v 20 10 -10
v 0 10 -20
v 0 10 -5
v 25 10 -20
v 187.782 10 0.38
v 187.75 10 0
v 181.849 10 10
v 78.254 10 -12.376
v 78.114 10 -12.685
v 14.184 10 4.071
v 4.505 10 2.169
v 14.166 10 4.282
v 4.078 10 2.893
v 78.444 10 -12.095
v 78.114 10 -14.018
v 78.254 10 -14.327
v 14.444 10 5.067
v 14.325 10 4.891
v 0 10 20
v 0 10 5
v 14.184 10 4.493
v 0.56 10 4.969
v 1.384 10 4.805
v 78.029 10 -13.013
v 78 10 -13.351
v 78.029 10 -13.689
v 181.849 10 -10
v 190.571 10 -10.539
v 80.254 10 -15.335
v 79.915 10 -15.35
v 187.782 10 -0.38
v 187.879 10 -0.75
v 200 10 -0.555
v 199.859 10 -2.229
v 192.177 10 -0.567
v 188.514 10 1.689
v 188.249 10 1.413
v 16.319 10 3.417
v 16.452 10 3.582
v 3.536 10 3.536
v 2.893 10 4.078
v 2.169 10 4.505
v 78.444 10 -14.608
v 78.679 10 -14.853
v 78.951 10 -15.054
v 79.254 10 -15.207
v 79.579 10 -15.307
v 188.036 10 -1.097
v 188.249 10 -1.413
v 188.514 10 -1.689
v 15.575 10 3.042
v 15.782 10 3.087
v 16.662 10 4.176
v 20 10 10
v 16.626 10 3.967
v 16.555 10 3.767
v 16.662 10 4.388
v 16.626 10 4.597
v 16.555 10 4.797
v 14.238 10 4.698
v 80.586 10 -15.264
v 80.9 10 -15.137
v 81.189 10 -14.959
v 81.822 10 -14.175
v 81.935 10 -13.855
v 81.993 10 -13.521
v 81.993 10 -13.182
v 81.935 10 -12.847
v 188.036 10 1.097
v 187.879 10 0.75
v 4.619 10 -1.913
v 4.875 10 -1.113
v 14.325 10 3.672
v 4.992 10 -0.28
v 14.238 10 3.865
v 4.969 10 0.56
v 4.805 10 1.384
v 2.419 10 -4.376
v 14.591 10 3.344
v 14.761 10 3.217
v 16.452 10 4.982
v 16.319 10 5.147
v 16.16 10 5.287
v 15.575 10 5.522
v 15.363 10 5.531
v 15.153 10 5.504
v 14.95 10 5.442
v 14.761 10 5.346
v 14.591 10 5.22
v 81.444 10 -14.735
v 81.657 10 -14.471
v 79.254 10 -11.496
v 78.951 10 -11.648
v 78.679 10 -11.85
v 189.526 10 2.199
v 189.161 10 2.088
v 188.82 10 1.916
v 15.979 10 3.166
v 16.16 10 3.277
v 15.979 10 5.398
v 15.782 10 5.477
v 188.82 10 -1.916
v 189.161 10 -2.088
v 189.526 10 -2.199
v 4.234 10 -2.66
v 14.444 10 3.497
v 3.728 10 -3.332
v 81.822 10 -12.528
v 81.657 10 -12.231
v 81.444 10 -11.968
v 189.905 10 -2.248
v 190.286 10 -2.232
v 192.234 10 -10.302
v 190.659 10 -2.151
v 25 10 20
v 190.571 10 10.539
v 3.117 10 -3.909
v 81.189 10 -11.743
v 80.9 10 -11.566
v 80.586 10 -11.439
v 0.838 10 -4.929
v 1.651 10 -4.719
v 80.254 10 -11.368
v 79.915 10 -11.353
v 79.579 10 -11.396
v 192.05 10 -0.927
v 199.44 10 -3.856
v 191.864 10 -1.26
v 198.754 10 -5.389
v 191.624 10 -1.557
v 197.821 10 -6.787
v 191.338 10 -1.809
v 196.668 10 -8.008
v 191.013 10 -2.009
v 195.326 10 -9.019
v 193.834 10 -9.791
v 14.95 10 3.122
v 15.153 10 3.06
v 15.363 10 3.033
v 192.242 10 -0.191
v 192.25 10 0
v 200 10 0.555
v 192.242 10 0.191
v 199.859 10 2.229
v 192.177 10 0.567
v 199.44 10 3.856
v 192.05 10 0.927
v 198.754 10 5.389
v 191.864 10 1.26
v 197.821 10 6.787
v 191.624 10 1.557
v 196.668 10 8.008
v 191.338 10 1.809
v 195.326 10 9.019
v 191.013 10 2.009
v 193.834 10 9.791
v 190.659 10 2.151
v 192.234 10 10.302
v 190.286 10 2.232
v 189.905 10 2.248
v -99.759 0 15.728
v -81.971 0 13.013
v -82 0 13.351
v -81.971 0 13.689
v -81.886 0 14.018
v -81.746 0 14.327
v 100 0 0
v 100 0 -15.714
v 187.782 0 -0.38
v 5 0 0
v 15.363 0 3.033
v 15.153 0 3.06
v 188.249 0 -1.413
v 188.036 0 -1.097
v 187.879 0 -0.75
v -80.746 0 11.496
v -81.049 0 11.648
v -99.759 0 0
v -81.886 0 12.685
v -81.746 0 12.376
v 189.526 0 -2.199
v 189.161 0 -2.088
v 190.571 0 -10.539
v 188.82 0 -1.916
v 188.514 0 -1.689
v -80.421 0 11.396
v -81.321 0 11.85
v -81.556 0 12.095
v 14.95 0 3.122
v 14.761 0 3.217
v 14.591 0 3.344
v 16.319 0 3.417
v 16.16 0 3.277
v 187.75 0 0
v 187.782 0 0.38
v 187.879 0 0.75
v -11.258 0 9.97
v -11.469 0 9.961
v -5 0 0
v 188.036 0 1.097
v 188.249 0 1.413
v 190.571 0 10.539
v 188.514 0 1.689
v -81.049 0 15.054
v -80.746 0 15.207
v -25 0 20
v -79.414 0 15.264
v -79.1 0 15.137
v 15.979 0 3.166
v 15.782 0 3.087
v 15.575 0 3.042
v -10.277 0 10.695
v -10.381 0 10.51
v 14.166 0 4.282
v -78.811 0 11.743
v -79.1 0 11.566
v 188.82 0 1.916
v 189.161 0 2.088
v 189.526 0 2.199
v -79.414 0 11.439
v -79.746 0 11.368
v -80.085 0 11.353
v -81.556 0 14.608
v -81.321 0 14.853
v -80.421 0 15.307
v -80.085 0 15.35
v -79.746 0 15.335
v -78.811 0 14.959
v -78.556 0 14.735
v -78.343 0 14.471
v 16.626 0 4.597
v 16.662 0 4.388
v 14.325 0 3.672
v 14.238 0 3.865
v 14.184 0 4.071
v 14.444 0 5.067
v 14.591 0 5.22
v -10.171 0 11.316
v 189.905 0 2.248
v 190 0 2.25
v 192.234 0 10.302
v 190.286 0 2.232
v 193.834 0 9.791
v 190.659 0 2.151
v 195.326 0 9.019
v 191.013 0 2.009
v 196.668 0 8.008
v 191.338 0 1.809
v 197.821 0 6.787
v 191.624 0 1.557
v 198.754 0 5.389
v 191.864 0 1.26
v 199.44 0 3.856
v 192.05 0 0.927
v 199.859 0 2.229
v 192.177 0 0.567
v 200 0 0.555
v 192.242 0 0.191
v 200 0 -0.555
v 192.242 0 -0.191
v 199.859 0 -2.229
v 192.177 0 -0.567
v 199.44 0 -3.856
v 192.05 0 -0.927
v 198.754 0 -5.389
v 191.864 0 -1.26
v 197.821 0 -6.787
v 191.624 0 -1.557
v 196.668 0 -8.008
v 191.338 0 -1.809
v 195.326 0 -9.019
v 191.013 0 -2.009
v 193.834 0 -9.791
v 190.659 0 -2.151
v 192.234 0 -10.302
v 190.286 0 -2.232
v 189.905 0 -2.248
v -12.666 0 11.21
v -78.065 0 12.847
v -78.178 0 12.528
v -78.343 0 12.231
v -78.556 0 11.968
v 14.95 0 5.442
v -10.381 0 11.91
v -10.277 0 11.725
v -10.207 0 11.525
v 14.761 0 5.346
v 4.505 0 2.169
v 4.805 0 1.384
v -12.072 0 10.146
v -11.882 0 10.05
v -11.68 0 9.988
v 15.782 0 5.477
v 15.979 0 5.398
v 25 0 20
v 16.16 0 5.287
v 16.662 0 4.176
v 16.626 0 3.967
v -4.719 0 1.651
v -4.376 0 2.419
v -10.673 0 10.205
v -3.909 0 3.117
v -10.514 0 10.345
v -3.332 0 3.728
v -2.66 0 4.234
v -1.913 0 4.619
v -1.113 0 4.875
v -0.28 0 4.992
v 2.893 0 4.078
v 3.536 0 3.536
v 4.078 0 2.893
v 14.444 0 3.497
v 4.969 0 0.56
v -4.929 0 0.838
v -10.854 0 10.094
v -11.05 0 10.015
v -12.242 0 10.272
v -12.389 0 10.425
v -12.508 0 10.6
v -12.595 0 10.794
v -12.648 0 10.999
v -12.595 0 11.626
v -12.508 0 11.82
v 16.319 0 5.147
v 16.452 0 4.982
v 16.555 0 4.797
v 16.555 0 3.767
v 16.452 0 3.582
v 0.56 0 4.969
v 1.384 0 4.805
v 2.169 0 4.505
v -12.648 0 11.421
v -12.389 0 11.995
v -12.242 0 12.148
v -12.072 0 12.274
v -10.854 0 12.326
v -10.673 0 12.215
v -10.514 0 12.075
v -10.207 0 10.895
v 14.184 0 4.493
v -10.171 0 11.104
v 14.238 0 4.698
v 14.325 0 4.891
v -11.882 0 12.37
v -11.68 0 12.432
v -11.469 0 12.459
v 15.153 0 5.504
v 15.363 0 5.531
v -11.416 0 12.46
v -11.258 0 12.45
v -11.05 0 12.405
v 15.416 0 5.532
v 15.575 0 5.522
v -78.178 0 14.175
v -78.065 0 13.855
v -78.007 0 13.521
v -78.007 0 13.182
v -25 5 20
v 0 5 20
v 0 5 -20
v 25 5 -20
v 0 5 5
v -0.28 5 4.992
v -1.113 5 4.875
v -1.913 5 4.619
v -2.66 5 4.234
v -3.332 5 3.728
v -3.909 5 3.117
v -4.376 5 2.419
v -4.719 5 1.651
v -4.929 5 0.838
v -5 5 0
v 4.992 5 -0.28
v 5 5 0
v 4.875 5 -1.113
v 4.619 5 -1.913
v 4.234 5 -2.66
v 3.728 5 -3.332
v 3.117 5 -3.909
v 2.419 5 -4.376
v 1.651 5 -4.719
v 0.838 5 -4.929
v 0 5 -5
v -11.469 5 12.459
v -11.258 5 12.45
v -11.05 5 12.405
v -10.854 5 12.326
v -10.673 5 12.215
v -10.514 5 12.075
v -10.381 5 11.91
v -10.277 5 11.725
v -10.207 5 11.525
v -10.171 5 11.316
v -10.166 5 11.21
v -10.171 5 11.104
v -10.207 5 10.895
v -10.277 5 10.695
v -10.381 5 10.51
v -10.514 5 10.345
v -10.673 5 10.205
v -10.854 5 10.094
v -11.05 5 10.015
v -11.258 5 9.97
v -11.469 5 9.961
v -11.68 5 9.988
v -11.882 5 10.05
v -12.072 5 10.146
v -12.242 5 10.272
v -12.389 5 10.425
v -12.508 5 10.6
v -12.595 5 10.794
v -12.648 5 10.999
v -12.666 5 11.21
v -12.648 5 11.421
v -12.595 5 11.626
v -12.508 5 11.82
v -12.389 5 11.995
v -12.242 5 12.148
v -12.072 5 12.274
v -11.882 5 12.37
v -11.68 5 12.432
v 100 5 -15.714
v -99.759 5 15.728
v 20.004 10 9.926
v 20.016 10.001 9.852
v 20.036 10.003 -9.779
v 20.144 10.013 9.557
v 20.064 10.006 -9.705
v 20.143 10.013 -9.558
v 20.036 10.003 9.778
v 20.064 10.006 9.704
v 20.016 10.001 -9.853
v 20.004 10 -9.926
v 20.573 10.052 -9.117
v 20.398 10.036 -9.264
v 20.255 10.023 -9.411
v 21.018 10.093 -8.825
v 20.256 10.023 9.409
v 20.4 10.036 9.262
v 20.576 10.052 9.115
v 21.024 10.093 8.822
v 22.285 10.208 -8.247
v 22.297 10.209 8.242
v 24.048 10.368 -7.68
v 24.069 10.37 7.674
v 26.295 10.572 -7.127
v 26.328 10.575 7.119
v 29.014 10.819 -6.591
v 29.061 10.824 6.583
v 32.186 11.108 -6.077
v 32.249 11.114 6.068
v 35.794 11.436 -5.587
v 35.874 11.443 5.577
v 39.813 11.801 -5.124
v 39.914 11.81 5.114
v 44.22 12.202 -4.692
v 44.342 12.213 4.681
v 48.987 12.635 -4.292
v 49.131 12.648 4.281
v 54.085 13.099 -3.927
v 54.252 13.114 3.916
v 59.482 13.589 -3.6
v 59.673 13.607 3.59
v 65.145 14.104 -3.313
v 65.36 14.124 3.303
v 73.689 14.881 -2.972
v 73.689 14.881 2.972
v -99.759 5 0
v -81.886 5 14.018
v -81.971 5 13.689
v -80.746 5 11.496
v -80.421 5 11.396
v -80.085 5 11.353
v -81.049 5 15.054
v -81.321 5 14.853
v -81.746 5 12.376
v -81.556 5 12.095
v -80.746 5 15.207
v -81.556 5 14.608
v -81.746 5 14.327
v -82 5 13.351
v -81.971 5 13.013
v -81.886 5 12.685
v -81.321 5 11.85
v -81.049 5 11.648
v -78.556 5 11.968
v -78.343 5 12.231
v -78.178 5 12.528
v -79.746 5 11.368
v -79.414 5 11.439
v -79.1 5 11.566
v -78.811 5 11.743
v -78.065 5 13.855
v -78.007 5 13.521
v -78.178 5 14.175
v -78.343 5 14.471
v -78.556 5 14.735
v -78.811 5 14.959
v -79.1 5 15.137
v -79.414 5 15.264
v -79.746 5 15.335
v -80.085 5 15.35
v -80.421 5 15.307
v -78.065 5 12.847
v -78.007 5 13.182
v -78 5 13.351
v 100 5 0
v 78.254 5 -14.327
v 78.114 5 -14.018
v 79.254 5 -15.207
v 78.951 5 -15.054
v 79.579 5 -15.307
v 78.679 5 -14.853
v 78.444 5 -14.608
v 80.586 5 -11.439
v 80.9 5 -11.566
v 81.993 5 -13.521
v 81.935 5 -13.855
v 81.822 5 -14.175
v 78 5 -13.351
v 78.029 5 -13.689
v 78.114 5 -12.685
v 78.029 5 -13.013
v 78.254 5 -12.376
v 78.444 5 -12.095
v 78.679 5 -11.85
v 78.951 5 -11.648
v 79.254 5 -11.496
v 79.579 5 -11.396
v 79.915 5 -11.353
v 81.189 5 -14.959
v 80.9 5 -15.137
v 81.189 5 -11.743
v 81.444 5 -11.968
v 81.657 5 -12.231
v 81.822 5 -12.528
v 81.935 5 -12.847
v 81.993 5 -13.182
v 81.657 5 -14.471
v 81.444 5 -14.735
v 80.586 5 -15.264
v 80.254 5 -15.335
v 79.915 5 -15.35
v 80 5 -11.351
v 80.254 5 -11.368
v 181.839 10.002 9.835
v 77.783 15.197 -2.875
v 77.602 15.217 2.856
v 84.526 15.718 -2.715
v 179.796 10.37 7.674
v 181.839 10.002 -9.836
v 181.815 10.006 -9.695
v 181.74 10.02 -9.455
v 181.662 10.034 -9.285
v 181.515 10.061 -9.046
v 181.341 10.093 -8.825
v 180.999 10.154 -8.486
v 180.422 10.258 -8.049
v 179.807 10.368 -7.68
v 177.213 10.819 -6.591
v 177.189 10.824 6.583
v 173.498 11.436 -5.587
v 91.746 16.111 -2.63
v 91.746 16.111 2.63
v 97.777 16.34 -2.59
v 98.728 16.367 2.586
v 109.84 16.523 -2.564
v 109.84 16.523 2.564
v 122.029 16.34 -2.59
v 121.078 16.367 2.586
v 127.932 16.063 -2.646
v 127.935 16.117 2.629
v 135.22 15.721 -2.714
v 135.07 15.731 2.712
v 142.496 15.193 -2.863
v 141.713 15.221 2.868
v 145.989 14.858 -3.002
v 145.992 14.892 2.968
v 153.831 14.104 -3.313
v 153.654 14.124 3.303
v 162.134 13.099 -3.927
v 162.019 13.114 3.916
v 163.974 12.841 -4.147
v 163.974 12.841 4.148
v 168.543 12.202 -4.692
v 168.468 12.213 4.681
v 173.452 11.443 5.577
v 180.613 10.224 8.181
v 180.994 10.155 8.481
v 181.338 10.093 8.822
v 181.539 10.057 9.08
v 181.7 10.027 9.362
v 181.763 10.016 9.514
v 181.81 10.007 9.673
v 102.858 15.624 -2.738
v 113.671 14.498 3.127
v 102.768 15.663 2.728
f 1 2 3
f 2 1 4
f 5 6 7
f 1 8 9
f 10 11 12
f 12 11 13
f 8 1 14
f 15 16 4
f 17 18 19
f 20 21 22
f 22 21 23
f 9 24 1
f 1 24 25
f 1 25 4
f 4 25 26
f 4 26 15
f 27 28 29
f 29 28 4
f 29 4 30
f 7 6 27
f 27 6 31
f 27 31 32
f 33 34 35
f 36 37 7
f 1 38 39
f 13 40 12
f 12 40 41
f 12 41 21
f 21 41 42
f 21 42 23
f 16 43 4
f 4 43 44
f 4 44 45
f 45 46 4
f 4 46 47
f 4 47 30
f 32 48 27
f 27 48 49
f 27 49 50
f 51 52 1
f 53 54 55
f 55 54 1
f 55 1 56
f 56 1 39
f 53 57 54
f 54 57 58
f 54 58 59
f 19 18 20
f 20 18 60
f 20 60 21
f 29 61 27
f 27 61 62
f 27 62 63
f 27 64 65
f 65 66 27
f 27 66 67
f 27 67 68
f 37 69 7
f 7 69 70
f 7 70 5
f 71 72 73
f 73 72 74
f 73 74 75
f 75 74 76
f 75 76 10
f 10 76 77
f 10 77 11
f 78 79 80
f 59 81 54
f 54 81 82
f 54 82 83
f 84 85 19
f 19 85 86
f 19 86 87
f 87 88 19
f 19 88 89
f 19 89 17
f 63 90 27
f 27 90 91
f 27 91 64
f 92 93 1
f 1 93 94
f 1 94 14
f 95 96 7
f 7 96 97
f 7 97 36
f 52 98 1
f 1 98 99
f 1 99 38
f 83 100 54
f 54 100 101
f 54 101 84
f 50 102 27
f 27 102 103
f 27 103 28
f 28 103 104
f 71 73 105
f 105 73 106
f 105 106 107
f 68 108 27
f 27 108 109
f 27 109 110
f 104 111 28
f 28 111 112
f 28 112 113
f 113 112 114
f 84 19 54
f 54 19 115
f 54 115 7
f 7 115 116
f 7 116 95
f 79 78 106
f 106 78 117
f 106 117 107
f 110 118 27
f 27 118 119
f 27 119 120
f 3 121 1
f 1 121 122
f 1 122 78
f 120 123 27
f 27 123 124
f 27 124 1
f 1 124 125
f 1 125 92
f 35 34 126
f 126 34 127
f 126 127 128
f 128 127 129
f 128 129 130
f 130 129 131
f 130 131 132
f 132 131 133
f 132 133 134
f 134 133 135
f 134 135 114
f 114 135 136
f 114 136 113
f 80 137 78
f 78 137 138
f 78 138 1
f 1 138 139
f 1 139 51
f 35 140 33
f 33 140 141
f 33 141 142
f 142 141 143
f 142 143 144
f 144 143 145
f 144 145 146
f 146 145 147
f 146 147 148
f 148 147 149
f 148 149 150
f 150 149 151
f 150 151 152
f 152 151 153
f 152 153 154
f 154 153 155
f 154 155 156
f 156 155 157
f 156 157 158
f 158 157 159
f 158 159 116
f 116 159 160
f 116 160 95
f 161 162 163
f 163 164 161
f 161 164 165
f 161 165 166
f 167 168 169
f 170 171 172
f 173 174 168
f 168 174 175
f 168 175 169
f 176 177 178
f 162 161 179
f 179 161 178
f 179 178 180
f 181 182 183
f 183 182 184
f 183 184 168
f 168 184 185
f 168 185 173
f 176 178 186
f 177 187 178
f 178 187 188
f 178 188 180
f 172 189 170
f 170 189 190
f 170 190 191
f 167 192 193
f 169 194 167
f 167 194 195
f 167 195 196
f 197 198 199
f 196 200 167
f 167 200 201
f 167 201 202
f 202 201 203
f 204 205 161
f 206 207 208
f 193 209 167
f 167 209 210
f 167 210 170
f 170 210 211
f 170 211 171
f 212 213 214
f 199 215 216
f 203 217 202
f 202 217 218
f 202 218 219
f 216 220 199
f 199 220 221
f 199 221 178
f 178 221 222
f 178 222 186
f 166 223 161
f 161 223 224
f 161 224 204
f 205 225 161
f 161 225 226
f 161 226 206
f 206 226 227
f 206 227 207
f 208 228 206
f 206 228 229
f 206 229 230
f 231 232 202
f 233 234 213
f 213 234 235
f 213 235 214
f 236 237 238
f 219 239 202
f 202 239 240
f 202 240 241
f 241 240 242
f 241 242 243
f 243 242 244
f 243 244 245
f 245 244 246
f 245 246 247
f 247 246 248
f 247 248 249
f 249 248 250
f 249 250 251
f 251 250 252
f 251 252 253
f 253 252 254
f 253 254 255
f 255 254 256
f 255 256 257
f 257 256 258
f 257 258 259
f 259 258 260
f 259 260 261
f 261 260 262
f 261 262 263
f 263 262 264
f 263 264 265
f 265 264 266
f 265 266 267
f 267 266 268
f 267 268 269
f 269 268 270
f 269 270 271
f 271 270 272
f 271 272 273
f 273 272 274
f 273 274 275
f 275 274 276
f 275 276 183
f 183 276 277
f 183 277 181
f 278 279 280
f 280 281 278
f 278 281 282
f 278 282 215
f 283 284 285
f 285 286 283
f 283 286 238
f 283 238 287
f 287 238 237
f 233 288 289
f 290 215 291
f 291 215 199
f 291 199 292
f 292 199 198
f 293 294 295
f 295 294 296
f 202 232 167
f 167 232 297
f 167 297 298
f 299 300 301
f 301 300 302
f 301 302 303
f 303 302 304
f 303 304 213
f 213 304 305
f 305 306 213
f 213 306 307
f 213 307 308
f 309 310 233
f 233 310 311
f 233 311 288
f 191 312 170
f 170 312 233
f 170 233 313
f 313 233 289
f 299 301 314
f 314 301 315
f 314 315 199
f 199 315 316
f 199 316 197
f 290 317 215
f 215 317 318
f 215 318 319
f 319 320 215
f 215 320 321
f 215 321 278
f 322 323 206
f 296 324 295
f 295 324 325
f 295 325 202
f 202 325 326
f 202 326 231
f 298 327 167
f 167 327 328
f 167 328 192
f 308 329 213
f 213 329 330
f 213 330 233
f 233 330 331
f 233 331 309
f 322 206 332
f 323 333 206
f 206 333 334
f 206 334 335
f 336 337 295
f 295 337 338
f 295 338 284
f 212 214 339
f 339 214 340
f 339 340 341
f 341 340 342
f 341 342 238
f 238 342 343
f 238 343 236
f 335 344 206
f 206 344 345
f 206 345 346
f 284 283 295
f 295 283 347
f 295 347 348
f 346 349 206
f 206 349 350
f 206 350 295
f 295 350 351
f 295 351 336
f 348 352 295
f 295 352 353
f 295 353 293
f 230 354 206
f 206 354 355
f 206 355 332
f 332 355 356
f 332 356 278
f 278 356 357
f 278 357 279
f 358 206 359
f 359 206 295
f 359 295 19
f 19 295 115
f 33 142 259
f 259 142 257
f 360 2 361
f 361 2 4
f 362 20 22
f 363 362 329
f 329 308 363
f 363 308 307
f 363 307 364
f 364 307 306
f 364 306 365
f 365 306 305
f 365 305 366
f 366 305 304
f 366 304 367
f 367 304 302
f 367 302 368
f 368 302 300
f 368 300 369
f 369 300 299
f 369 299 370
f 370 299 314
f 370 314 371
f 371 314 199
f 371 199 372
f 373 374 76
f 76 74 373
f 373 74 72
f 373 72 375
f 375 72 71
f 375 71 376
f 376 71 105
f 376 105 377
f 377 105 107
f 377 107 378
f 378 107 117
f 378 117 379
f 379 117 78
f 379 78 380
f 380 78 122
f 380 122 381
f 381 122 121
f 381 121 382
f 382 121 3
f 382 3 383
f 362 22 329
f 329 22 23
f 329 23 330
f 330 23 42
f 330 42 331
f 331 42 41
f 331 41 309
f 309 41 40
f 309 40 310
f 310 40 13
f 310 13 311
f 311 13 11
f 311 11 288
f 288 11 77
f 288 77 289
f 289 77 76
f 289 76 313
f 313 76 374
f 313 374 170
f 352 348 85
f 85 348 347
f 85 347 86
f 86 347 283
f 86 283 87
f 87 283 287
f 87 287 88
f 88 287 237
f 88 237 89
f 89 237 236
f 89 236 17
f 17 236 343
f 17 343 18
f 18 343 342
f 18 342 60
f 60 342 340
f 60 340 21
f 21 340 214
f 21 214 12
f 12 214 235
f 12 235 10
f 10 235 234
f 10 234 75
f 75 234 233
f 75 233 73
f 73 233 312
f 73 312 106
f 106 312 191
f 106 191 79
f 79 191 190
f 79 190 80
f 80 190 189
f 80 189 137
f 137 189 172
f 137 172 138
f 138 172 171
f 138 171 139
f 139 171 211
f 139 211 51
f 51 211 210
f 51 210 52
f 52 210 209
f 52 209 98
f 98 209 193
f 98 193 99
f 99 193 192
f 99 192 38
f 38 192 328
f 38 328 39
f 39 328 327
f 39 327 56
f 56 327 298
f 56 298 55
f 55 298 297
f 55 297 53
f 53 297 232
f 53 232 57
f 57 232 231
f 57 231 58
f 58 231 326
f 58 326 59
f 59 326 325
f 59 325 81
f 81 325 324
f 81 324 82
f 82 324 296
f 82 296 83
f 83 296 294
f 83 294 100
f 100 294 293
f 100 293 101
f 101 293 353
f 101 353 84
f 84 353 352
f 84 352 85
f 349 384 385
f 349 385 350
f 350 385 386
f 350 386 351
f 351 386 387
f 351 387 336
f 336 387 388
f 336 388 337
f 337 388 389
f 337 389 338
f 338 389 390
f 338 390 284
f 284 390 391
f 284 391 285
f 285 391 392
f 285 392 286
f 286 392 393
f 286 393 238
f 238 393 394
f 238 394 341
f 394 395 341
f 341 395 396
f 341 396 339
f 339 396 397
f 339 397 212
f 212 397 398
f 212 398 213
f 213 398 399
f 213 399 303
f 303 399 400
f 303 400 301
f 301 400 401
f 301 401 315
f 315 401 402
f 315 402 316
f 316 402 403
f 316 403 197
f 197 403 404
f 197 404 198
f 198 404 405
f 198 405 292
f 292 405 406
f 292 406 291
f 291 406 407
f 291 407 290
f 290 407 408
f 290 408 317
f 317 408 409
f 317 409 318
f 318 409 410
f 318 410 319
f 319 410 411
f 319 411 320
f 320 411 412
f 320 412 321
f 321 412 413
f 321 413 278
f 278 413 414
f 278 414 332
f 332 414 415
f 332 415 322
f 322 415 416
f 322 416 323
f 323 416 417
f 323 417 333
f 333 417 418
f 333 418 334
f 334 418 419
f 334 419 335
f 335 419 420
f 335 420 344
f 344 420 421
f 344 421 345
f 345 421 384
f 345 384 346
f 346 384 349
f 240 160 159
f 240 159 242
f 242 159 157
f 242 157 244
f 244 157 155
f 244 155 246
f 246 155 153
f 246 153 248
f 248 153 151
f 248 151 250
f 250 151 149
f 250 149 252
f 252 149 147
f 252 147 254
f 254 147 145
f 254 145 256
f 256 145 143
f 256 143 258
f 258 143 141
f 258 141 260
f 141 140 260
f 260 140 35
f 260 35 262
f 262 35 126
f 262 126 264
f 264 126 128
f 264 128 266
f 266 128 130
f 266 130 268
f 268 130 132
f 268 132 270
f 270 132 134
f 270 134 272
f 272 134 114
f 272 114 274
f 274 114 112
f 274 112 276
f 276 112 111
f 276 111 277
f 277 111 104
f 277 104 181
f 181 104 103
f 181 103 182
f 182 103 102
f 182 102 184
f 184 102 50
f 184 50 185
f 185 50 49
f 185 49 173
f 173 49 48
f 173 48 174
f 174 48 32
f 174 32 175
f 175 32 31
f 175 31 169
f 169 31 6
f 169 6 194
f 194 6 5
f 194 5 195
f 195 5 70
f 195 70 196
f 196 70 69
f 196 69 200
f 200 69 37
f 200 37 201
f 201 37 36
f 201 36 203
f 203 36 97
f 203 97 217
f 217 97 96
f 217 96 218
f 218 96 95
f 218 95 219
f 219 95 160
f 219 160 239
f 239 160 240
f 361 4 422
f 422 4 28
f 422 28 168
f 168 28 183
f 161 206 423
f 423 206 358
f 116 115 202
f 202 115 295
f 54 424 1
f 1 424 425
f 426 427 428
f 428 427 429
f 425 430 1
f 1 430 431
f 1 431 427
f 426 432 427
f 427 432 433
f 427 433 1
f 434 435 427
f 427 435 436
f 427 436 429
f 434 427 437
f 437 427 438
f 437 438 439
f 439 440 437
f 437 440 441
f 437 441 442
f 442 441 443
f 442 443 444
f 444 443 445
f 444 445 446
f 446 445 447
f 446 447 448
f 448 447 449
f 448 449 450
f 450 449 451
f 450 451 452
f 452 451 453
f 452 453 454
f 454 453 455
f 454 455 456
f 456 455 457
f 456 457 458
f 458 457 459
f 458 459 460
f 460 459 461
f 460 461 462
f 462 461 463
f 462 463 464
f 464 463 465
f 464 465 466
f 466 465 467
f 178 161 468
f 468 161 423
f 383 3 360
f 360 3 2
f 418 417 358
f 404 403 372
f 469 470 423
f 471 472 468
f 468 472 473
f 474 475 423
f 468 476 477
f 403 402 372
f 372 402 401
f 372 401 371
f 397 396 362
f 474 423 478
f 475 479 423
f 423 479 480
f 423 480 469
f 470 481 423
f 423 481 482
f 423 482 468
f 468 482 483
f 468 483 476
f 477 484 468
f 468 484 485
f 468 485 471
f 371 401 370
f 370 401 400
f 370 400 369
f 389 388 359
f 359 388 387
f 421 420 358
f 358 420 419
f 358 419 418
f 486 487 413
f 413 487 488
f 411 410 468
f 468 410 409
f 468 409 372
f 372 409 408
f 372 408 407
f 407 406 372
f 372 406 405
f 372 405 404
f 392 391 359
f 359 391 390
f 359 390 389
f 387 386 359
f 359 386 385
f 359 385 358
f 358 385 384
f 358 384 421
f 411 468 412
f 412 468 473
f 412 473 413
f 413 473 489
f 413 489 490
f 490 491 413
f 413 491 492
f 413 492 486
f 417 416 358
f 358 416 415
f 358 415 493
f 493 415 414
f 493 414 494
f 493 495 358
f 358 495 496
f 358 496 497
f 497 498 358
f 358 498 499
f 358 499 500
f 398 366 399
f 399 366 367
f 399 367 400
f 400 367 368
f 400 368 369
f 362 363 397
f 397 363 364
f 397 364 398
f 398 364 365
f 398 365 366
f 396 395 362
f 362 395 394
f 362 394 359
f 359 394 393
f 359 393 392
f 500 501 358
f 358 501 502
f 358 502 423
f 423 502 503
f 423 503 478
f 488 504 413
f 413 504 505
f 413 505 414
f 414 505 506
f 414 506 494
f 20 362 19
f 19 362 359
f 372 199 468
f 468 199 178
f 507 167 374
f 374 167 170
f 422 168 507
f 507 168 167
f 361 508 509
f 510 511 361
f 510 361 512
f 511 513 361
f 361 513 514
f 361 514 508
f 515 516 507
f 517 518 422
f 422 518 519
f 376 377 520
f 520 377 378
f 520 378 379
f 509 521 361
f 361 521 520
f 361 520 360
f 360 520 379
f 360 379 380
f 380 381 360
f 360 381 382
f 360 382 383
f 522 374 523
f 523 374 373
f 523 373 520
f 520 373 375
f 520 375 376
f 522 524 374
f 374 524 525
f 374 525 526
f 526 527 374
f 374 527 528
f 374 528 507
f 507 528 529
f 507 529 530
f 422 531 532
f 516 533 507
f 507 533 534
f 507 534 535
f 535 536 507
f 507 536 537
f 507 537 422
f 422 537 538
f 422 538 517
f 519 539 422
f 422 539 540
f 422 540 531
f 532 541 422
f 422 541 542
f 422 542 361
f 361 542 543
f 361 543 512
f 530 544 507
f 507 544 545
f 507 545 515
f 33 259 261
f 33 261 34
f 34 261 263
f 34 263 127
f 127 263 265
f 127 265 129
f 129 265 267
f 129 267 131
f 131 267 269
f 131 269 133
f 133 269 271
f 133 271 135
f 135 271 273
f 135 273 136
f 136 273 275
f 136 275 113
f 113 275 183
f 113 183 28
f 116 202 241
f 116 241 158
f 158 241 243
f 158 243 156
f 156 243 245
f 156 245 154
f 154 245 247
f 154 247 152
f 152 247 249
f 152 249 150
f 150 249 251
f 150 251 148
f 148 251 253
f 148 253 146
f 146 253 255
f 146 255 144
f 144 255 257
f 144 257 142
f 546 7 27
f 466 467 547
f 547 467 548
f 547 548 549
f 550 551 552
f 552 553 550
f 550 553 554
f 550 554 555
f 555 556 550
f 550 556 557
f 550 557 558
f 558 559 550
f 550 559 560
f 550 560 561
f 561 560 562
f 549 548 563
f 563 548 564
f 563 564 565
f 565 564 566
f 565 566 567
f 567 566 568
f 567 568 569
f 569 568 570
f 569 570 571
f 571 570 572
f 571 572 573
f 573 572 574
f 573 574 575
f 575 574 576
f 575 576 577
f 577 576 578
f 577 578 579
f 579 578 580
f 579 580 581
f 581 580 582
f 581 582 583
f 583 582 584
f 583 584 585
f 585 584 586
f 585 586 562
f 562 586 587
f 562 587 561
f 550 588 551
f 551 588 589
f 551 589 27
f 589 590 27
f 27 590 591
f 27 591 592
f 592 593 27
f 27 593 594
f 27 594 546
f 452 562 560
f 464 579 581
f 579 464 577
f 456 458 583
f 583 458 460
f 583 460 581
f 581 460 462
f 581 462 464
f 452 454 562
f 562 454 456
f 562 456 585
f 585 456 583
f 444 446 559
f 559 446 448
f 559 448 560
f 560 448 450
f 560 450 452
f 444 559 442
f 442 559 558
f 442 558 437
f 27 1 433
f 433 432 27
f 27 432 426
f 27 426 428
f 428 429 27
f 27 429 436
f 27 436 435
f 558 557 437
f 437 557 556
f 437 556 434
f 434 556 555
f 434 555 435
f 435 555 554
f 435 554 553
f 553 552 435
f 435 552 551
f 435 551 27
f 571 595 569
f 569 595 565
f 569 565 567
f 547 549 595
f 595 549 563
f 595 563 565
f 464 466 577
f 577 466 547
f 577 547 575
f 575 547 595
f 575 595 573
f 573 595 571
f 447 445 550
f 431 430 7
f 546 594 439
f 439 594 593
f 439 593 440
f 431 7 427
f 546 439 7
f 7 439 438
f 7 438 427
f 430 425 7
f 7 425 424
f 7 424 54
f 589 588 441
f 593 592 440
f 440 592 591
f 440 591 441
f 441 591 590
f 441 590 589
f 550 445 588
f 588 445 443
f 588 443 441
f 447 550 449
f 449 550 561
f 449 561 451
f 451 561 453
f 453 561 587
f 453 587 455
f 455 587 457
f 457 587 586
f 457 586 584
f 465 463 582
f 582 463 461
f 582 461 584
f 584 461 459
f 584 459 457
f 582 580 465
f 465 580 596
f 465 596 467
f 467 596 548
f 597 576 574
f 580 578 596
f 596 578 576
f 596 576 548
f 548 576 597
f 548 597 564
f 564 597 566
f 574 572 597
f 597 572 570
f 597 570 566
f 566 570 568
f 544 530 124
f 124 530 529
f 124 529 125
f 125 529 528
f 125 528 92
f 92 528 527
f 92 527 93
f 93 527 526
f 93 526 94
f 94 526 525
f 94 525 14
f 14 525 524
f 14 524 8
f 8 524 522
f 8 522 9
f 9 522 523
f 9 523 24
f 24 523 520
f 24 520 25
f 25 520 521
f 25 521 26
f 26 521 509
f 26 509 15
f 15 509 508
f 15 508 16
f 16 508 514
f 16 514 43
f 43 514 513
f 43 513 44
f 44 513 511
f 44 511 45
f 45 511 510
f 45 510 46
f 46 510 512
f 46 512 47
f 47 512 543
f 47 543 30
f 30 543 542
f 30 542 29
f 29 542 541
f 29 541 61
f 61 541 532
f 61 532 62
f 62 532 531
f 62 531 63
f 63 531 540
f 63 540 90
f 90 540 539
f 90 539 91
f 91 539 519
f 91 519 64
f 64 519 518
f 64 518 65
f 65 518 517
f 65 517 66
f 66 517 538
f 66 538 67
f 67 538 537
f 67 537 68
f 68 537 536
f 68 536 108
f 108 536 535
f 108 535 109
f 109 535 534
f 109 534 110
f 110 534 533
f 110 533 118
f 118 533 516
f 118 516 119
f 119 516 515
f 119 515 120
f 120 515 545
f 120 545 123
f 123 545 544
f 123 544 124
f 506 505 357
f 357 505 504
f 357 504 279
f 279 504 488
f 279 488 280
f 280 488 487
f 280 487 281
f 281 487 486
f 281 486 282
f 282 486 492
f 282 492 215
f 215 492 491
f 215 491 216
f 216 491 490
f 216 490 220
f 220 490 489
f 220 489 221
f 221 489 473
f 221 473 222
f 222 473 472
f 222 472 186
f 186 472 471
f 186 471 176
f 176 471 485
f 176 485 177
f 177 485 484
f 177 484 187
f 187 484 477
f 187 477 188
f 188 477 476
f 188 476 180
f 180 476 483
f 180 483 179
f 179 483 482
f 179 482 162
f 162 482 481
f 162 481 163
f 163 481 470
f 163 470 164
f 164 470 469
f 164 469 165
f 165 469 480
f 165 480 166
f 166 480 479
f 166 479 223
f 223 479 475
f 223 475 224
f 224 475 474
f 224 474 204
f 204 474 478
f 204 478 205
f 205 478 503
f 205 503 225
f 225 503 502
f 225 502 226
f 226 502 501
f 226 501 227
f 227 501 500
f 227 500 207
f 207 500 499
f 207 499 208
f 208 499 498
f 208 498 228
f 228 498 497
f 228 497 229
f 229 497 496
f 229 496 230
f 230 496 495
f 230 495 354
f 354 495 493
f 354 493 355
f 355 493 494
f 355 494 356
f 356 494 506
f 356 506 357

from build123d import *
from build123d.topology import SkipClean

# Parameters (mm, degrees)
BOSS_EXTRUDE1_DEPTH  = 20
SKETCH3_R            = 1.25
SKETCH3_R_2          = 5
SKETCH3_R_3          = 2.25
CUT_EXTRUDE1_DEPTH   = 40
CUT_EXTRUDE2_DEPTH   = 40
MIRROR2_COPY_1_DEPTH = 40
BOSS_EXTRUDE3_DEPTH  = 2.5
SKETCH6_W            = 103.671116399
SKETCH6_H            = 23.957467505
CUT_EXTRUDE3_DEPTH   = 25
SKETCH7_W            = 105.212539013
SKETCH7_H            = 19.765490072
CUT_EXTRUDE4_DEPTH   = 25
SKETCH8_W            = 102.846794358
SKETCH8_H            = 18.402184695
CUT_EXTRUDE5_DEPTH   = 50
SKETCH9_W            = 100
SKETCH9_H            = 9.37939479
CUT_EXTRUDE6_DEPTH   = 50
FILLET2_R            = 10
FILLET3_R            = 400
FILLET4_START        = -2.563828285
FILLET4_DEPTH        = 5.127667015
FILLET4_START_2      = -10.0000001
FILLET4_2_DEPTH      = 20.0000001
FILLET4_START_3      = 19.9999999
FILLET4_3_DEPTH      = 163.0000001
SKETCH10_R           = 2
CUT_EXTRUDE7_DEPTH   = 10


with BuildPart() as part:
    # Sketch2 → Boss-Extrude1 (new, symmetric)
    with BuildSketch(Plane.XY):
        Polygon((0, 0), (200, 0), (200, 10), (-200, 10), (-200, 0), align=None)
    extrude(amount=BOSS_EXTRUDE1_DEPTH, both=True)

    # Sketch3 → Cut-Extrude1 (cut)
    with BuildSketch(Plane(origin=(0, 10, 0), x_dir=(1, 0, 0), z_dir=(0, 1, 0))):
        with Locations(Location((-4, 15.491933385, 0), (0, 0, 180))):
            Circle(SKETCH3_R)
        with Locations(Location((15.416407865, -4.281865077, 0), (0, 0, 180))):
            Circle(SKETCH3_R)
        with Locations(Location((-11.416407865, -11.210068308, 0), (0, 0, 180))):
            Circle(SKETCH3_R)
        with Locations(Location((0, 0, 0), (0, 0, 180))):
            Circle(SKETCH3_R_2)
        with Locations(Location((-190, 0, 0), (0, 0, 180))):
            Circle(SKETCH3_R_3)
        with Locations(Location((190, 0, 0), (0, 0, 270))):
            Circle(SKETCH3_R_3)
    extrude(amount=-CUT_EXTRUDE1_DEPTH, mode=Mode.SUBTRACT)

    # Sketch4 → Cut-Extrude2 (cut)
    with BuildSketch(Plane(origin=(0, 10, 0), x_dir=(1, 0, 0), z_dir=(0, 1, 0))):
        Polygon((-205.682411406, 30.266574236), (-25, 30.266574236), (-25, 20), (-200, 10), (-205.682411406, 10), align=None)
    cut_extrude2 = extrude(amount=-CUT_EXTRUDE2_DEPTH, mode=Mode.SUBTRACT)

    # Mirror1: Cut-Extrude2 across plane
    add(cut_extrude2.mirror(Plane(origin=(0, 0, 0), x_dir=(0, 0, 1), z_dir=(1, 0, 0))), mode=Mode.SUBTRACT)

    # Mirror2: Cut-Extrude2 across plane
    add(cut_extrude2.mirror(Plane.XY), mode=Mode.SUBTRACT)

    # Mirror2 copy 1 sketch → Mirror2 copy 1 (cut)
    with BuildSketch(Plane(origin=(0, 10, 0), x_dir=(-1, 0, 0), z_dir=(0, 1, 0))):
        Polygon((-205.682411406, 30.266574236), (-25, 30.266574236), (-25, 20), (-200, 10), (-205.682411406, 10), align=None)
    extrude(amount=-MIRROR2_COPY_1_DEPTH, mode=Mode.SUBTRACT)

    # Sketch5 → Boss-Extrude3 (add, symmetric)
    with BuildSketch(Plane.XY):
        Polygon((-181.848966048, 10), (-20, 10), (-130, 20), align=None)
    boss_extrude3 = extrude(amount=BOSS_EXTRUDE3_DEPTH, both=True)

    # Mirror3: Boss-Extrude3 across plane
    add(boss_extrude3.mirror(Plane(origin=(0, 0, 0), x_dir=(0, 0, 1), z_dir=(1, 0, 0))))

    # Sketch6 → Cut-Extrude3 (cut, symmetric)
    with BuildSketch(Plane.XY):
        with Locations((-151.594267329, 11.978733753)):
            Rectangle(SKETCH6_W, SKETCH6_H)
    extrude(amount=CUT_EXTRUDE3_DEPTH, both=True, mode=Mode.SUBTRACT)

    # Sketch7 → Cut-Extrude4 (cut, symmetric)
    with BuildSketch(Plane.XY):
        with Locations((-52.606269507, 14.882745036)):
            Rectangle(SKETCH7_W, SKETCH7_H)
    extrude(amount=CUT_EXTRUDE4_DEPTH, both=True, mode=Mode.SUBTRACT)

    # Sketch8 → Cut-Extrude5 (cut)
    with BuildSketch(Plane.XY):
        with Locations((-51.423397179, -0.639817385)):
            Rectangle(SKETCH8_W, SKETCH8_H)
    extrude(amount=-CUT_EXTRUDE5_DEPTH, mode=Mode.SUBTRACT)

    # Sketch9 → Cut-Extrude6 (cut)
    with BuildSketch(Plane.XY):
        with Locations((50, 0.310302605)):
            Rectangle(SKETCH9_W, SKETCH9_H)
    extrude(amount=-CUT_EXTRUDE6_DEPTH, mode=Mode.SUBTRACT)

    # Fillet2
    fillet2_edges = [part.edges().sort_by_distance(p)[0] for p in [
        (200, 5, -10),
        (200, 5, 10),
    ]]
    fillet(fillet2_edges, radius=FILLET2_R)

    # Fillet3
    # the kernel refuses this fillet: 400 mm, written as the material it takes off along each edge
    with BuildSketch(Plane(origin=(130, 20, 143.859110373), x_dir=(0.9819042977432754, -0.1893777972025378, 0), z_dir=(0, 0, -1))) as fillet3_piece_1:
        with BuildLine():
            CenterArc((56.676030542, 399.981263631), FILLET3_R, 253.889095702, 15.55633982)
            Line((-54.322969389, 15.690719883), (-56.542949388, 8.004909008))
            Line((-56.542949388, 8.004909008), (-2.219979999, -7.685810875))
            Line((-2.219979999, -7.685810875), (0, -8))
            ThreePointArc((0, -8), (26.402250284, -8), (52.727069969, -7.999625273))
            Line((52.727069969, -7.999625273), (52.804500568, 0))
        make_face()
    extrude(amount=287.718220747, mode=Mode.SUBTRACT)

    # Fillet4: read off the stored shape, not the designer's step
    # Fillet4 outline → Fillet4 (add)
    with SkipClean():  # the faces are left unmerged after this step: merging them gives an invalid solid
        with BuildSketch(Plane.XY.offset(FILLET4_START)):
            with BuildLine():
                ThreePointArc((181.84896605, 10), (127.934669494, 16.116857351), (73.688568923, 14.880778993))
                Line((73.688568923, 14.880778993), (20, 10))
                Line((20, 10), (181.84896605, 10))
            make_face()
        extrude(amount=FILLET4_DEPTH)

    # Fillet4 2 outline → Fillet4 2 (add)
    with BuildSketch(Plane.XY.offset(FILLET4_START_2)):
        with BuildLine():
            ThreePointArc((181.84896605, 10), (127.934669494, 16.116857351), (73.688568923, 14.880778993))
            Line((73.688568923, 14.880778993), (20, 10))
            Line((20, 10), (181.84896605, 10))
        make_face()
    extrude(amount=FILLET4_2_DEPTH)

    # Fillet4 3 outline → Fillet4 3 (cut)
    with BuildSketch(Plane.YZ.offset(FILLET4_START_3)):
        with BuildLine():
            ThreePointArc((16.523566776, -2.5638331), (11.862037195, -5.053953558), (10, -10))
            Line((10, -10), (18, -10.0000001))
            Line((18, -10.0000001), (18, -2.369964609))
            Line((18, -2.369964609), (16.523566776, -2.5638331))
        make_face()
        with BuildLine():
            Line((16.523565368, 2.563833285), (18, 2.369964325))
            Line((18, 2.369964325), (18, 10))
            Line((18, 10), (10, 10))
            ThreePointArc((10, 10), (11.862036727, 5.053954091), (16.523565368, 2.563833285))
        make_face()
    extrude(amount=FILLET4_3_DEPTH, mode=Mode.SUBTRACT)

    # Sketch10 → Cut-Extrude7 (cut)
    with BuildSketch(Plane(origin=(0, 10, 0), x_dir=(1, 0, 0), z_dir=(0, 1, 0))):
        with Locations(Location((80, 13.351433229, 0), (0, 0, 180))):
            Circle(SKETCH10_R)
        with Locations(Location((-80, -13.351433229, 0), (0, 0, 180))):
            Circle(SKETCH10_R)
    extrude(amount=-CUT_EXTRUDE7_DEPTH, mode=Mode.SUBTRACT)


solid = part.part
